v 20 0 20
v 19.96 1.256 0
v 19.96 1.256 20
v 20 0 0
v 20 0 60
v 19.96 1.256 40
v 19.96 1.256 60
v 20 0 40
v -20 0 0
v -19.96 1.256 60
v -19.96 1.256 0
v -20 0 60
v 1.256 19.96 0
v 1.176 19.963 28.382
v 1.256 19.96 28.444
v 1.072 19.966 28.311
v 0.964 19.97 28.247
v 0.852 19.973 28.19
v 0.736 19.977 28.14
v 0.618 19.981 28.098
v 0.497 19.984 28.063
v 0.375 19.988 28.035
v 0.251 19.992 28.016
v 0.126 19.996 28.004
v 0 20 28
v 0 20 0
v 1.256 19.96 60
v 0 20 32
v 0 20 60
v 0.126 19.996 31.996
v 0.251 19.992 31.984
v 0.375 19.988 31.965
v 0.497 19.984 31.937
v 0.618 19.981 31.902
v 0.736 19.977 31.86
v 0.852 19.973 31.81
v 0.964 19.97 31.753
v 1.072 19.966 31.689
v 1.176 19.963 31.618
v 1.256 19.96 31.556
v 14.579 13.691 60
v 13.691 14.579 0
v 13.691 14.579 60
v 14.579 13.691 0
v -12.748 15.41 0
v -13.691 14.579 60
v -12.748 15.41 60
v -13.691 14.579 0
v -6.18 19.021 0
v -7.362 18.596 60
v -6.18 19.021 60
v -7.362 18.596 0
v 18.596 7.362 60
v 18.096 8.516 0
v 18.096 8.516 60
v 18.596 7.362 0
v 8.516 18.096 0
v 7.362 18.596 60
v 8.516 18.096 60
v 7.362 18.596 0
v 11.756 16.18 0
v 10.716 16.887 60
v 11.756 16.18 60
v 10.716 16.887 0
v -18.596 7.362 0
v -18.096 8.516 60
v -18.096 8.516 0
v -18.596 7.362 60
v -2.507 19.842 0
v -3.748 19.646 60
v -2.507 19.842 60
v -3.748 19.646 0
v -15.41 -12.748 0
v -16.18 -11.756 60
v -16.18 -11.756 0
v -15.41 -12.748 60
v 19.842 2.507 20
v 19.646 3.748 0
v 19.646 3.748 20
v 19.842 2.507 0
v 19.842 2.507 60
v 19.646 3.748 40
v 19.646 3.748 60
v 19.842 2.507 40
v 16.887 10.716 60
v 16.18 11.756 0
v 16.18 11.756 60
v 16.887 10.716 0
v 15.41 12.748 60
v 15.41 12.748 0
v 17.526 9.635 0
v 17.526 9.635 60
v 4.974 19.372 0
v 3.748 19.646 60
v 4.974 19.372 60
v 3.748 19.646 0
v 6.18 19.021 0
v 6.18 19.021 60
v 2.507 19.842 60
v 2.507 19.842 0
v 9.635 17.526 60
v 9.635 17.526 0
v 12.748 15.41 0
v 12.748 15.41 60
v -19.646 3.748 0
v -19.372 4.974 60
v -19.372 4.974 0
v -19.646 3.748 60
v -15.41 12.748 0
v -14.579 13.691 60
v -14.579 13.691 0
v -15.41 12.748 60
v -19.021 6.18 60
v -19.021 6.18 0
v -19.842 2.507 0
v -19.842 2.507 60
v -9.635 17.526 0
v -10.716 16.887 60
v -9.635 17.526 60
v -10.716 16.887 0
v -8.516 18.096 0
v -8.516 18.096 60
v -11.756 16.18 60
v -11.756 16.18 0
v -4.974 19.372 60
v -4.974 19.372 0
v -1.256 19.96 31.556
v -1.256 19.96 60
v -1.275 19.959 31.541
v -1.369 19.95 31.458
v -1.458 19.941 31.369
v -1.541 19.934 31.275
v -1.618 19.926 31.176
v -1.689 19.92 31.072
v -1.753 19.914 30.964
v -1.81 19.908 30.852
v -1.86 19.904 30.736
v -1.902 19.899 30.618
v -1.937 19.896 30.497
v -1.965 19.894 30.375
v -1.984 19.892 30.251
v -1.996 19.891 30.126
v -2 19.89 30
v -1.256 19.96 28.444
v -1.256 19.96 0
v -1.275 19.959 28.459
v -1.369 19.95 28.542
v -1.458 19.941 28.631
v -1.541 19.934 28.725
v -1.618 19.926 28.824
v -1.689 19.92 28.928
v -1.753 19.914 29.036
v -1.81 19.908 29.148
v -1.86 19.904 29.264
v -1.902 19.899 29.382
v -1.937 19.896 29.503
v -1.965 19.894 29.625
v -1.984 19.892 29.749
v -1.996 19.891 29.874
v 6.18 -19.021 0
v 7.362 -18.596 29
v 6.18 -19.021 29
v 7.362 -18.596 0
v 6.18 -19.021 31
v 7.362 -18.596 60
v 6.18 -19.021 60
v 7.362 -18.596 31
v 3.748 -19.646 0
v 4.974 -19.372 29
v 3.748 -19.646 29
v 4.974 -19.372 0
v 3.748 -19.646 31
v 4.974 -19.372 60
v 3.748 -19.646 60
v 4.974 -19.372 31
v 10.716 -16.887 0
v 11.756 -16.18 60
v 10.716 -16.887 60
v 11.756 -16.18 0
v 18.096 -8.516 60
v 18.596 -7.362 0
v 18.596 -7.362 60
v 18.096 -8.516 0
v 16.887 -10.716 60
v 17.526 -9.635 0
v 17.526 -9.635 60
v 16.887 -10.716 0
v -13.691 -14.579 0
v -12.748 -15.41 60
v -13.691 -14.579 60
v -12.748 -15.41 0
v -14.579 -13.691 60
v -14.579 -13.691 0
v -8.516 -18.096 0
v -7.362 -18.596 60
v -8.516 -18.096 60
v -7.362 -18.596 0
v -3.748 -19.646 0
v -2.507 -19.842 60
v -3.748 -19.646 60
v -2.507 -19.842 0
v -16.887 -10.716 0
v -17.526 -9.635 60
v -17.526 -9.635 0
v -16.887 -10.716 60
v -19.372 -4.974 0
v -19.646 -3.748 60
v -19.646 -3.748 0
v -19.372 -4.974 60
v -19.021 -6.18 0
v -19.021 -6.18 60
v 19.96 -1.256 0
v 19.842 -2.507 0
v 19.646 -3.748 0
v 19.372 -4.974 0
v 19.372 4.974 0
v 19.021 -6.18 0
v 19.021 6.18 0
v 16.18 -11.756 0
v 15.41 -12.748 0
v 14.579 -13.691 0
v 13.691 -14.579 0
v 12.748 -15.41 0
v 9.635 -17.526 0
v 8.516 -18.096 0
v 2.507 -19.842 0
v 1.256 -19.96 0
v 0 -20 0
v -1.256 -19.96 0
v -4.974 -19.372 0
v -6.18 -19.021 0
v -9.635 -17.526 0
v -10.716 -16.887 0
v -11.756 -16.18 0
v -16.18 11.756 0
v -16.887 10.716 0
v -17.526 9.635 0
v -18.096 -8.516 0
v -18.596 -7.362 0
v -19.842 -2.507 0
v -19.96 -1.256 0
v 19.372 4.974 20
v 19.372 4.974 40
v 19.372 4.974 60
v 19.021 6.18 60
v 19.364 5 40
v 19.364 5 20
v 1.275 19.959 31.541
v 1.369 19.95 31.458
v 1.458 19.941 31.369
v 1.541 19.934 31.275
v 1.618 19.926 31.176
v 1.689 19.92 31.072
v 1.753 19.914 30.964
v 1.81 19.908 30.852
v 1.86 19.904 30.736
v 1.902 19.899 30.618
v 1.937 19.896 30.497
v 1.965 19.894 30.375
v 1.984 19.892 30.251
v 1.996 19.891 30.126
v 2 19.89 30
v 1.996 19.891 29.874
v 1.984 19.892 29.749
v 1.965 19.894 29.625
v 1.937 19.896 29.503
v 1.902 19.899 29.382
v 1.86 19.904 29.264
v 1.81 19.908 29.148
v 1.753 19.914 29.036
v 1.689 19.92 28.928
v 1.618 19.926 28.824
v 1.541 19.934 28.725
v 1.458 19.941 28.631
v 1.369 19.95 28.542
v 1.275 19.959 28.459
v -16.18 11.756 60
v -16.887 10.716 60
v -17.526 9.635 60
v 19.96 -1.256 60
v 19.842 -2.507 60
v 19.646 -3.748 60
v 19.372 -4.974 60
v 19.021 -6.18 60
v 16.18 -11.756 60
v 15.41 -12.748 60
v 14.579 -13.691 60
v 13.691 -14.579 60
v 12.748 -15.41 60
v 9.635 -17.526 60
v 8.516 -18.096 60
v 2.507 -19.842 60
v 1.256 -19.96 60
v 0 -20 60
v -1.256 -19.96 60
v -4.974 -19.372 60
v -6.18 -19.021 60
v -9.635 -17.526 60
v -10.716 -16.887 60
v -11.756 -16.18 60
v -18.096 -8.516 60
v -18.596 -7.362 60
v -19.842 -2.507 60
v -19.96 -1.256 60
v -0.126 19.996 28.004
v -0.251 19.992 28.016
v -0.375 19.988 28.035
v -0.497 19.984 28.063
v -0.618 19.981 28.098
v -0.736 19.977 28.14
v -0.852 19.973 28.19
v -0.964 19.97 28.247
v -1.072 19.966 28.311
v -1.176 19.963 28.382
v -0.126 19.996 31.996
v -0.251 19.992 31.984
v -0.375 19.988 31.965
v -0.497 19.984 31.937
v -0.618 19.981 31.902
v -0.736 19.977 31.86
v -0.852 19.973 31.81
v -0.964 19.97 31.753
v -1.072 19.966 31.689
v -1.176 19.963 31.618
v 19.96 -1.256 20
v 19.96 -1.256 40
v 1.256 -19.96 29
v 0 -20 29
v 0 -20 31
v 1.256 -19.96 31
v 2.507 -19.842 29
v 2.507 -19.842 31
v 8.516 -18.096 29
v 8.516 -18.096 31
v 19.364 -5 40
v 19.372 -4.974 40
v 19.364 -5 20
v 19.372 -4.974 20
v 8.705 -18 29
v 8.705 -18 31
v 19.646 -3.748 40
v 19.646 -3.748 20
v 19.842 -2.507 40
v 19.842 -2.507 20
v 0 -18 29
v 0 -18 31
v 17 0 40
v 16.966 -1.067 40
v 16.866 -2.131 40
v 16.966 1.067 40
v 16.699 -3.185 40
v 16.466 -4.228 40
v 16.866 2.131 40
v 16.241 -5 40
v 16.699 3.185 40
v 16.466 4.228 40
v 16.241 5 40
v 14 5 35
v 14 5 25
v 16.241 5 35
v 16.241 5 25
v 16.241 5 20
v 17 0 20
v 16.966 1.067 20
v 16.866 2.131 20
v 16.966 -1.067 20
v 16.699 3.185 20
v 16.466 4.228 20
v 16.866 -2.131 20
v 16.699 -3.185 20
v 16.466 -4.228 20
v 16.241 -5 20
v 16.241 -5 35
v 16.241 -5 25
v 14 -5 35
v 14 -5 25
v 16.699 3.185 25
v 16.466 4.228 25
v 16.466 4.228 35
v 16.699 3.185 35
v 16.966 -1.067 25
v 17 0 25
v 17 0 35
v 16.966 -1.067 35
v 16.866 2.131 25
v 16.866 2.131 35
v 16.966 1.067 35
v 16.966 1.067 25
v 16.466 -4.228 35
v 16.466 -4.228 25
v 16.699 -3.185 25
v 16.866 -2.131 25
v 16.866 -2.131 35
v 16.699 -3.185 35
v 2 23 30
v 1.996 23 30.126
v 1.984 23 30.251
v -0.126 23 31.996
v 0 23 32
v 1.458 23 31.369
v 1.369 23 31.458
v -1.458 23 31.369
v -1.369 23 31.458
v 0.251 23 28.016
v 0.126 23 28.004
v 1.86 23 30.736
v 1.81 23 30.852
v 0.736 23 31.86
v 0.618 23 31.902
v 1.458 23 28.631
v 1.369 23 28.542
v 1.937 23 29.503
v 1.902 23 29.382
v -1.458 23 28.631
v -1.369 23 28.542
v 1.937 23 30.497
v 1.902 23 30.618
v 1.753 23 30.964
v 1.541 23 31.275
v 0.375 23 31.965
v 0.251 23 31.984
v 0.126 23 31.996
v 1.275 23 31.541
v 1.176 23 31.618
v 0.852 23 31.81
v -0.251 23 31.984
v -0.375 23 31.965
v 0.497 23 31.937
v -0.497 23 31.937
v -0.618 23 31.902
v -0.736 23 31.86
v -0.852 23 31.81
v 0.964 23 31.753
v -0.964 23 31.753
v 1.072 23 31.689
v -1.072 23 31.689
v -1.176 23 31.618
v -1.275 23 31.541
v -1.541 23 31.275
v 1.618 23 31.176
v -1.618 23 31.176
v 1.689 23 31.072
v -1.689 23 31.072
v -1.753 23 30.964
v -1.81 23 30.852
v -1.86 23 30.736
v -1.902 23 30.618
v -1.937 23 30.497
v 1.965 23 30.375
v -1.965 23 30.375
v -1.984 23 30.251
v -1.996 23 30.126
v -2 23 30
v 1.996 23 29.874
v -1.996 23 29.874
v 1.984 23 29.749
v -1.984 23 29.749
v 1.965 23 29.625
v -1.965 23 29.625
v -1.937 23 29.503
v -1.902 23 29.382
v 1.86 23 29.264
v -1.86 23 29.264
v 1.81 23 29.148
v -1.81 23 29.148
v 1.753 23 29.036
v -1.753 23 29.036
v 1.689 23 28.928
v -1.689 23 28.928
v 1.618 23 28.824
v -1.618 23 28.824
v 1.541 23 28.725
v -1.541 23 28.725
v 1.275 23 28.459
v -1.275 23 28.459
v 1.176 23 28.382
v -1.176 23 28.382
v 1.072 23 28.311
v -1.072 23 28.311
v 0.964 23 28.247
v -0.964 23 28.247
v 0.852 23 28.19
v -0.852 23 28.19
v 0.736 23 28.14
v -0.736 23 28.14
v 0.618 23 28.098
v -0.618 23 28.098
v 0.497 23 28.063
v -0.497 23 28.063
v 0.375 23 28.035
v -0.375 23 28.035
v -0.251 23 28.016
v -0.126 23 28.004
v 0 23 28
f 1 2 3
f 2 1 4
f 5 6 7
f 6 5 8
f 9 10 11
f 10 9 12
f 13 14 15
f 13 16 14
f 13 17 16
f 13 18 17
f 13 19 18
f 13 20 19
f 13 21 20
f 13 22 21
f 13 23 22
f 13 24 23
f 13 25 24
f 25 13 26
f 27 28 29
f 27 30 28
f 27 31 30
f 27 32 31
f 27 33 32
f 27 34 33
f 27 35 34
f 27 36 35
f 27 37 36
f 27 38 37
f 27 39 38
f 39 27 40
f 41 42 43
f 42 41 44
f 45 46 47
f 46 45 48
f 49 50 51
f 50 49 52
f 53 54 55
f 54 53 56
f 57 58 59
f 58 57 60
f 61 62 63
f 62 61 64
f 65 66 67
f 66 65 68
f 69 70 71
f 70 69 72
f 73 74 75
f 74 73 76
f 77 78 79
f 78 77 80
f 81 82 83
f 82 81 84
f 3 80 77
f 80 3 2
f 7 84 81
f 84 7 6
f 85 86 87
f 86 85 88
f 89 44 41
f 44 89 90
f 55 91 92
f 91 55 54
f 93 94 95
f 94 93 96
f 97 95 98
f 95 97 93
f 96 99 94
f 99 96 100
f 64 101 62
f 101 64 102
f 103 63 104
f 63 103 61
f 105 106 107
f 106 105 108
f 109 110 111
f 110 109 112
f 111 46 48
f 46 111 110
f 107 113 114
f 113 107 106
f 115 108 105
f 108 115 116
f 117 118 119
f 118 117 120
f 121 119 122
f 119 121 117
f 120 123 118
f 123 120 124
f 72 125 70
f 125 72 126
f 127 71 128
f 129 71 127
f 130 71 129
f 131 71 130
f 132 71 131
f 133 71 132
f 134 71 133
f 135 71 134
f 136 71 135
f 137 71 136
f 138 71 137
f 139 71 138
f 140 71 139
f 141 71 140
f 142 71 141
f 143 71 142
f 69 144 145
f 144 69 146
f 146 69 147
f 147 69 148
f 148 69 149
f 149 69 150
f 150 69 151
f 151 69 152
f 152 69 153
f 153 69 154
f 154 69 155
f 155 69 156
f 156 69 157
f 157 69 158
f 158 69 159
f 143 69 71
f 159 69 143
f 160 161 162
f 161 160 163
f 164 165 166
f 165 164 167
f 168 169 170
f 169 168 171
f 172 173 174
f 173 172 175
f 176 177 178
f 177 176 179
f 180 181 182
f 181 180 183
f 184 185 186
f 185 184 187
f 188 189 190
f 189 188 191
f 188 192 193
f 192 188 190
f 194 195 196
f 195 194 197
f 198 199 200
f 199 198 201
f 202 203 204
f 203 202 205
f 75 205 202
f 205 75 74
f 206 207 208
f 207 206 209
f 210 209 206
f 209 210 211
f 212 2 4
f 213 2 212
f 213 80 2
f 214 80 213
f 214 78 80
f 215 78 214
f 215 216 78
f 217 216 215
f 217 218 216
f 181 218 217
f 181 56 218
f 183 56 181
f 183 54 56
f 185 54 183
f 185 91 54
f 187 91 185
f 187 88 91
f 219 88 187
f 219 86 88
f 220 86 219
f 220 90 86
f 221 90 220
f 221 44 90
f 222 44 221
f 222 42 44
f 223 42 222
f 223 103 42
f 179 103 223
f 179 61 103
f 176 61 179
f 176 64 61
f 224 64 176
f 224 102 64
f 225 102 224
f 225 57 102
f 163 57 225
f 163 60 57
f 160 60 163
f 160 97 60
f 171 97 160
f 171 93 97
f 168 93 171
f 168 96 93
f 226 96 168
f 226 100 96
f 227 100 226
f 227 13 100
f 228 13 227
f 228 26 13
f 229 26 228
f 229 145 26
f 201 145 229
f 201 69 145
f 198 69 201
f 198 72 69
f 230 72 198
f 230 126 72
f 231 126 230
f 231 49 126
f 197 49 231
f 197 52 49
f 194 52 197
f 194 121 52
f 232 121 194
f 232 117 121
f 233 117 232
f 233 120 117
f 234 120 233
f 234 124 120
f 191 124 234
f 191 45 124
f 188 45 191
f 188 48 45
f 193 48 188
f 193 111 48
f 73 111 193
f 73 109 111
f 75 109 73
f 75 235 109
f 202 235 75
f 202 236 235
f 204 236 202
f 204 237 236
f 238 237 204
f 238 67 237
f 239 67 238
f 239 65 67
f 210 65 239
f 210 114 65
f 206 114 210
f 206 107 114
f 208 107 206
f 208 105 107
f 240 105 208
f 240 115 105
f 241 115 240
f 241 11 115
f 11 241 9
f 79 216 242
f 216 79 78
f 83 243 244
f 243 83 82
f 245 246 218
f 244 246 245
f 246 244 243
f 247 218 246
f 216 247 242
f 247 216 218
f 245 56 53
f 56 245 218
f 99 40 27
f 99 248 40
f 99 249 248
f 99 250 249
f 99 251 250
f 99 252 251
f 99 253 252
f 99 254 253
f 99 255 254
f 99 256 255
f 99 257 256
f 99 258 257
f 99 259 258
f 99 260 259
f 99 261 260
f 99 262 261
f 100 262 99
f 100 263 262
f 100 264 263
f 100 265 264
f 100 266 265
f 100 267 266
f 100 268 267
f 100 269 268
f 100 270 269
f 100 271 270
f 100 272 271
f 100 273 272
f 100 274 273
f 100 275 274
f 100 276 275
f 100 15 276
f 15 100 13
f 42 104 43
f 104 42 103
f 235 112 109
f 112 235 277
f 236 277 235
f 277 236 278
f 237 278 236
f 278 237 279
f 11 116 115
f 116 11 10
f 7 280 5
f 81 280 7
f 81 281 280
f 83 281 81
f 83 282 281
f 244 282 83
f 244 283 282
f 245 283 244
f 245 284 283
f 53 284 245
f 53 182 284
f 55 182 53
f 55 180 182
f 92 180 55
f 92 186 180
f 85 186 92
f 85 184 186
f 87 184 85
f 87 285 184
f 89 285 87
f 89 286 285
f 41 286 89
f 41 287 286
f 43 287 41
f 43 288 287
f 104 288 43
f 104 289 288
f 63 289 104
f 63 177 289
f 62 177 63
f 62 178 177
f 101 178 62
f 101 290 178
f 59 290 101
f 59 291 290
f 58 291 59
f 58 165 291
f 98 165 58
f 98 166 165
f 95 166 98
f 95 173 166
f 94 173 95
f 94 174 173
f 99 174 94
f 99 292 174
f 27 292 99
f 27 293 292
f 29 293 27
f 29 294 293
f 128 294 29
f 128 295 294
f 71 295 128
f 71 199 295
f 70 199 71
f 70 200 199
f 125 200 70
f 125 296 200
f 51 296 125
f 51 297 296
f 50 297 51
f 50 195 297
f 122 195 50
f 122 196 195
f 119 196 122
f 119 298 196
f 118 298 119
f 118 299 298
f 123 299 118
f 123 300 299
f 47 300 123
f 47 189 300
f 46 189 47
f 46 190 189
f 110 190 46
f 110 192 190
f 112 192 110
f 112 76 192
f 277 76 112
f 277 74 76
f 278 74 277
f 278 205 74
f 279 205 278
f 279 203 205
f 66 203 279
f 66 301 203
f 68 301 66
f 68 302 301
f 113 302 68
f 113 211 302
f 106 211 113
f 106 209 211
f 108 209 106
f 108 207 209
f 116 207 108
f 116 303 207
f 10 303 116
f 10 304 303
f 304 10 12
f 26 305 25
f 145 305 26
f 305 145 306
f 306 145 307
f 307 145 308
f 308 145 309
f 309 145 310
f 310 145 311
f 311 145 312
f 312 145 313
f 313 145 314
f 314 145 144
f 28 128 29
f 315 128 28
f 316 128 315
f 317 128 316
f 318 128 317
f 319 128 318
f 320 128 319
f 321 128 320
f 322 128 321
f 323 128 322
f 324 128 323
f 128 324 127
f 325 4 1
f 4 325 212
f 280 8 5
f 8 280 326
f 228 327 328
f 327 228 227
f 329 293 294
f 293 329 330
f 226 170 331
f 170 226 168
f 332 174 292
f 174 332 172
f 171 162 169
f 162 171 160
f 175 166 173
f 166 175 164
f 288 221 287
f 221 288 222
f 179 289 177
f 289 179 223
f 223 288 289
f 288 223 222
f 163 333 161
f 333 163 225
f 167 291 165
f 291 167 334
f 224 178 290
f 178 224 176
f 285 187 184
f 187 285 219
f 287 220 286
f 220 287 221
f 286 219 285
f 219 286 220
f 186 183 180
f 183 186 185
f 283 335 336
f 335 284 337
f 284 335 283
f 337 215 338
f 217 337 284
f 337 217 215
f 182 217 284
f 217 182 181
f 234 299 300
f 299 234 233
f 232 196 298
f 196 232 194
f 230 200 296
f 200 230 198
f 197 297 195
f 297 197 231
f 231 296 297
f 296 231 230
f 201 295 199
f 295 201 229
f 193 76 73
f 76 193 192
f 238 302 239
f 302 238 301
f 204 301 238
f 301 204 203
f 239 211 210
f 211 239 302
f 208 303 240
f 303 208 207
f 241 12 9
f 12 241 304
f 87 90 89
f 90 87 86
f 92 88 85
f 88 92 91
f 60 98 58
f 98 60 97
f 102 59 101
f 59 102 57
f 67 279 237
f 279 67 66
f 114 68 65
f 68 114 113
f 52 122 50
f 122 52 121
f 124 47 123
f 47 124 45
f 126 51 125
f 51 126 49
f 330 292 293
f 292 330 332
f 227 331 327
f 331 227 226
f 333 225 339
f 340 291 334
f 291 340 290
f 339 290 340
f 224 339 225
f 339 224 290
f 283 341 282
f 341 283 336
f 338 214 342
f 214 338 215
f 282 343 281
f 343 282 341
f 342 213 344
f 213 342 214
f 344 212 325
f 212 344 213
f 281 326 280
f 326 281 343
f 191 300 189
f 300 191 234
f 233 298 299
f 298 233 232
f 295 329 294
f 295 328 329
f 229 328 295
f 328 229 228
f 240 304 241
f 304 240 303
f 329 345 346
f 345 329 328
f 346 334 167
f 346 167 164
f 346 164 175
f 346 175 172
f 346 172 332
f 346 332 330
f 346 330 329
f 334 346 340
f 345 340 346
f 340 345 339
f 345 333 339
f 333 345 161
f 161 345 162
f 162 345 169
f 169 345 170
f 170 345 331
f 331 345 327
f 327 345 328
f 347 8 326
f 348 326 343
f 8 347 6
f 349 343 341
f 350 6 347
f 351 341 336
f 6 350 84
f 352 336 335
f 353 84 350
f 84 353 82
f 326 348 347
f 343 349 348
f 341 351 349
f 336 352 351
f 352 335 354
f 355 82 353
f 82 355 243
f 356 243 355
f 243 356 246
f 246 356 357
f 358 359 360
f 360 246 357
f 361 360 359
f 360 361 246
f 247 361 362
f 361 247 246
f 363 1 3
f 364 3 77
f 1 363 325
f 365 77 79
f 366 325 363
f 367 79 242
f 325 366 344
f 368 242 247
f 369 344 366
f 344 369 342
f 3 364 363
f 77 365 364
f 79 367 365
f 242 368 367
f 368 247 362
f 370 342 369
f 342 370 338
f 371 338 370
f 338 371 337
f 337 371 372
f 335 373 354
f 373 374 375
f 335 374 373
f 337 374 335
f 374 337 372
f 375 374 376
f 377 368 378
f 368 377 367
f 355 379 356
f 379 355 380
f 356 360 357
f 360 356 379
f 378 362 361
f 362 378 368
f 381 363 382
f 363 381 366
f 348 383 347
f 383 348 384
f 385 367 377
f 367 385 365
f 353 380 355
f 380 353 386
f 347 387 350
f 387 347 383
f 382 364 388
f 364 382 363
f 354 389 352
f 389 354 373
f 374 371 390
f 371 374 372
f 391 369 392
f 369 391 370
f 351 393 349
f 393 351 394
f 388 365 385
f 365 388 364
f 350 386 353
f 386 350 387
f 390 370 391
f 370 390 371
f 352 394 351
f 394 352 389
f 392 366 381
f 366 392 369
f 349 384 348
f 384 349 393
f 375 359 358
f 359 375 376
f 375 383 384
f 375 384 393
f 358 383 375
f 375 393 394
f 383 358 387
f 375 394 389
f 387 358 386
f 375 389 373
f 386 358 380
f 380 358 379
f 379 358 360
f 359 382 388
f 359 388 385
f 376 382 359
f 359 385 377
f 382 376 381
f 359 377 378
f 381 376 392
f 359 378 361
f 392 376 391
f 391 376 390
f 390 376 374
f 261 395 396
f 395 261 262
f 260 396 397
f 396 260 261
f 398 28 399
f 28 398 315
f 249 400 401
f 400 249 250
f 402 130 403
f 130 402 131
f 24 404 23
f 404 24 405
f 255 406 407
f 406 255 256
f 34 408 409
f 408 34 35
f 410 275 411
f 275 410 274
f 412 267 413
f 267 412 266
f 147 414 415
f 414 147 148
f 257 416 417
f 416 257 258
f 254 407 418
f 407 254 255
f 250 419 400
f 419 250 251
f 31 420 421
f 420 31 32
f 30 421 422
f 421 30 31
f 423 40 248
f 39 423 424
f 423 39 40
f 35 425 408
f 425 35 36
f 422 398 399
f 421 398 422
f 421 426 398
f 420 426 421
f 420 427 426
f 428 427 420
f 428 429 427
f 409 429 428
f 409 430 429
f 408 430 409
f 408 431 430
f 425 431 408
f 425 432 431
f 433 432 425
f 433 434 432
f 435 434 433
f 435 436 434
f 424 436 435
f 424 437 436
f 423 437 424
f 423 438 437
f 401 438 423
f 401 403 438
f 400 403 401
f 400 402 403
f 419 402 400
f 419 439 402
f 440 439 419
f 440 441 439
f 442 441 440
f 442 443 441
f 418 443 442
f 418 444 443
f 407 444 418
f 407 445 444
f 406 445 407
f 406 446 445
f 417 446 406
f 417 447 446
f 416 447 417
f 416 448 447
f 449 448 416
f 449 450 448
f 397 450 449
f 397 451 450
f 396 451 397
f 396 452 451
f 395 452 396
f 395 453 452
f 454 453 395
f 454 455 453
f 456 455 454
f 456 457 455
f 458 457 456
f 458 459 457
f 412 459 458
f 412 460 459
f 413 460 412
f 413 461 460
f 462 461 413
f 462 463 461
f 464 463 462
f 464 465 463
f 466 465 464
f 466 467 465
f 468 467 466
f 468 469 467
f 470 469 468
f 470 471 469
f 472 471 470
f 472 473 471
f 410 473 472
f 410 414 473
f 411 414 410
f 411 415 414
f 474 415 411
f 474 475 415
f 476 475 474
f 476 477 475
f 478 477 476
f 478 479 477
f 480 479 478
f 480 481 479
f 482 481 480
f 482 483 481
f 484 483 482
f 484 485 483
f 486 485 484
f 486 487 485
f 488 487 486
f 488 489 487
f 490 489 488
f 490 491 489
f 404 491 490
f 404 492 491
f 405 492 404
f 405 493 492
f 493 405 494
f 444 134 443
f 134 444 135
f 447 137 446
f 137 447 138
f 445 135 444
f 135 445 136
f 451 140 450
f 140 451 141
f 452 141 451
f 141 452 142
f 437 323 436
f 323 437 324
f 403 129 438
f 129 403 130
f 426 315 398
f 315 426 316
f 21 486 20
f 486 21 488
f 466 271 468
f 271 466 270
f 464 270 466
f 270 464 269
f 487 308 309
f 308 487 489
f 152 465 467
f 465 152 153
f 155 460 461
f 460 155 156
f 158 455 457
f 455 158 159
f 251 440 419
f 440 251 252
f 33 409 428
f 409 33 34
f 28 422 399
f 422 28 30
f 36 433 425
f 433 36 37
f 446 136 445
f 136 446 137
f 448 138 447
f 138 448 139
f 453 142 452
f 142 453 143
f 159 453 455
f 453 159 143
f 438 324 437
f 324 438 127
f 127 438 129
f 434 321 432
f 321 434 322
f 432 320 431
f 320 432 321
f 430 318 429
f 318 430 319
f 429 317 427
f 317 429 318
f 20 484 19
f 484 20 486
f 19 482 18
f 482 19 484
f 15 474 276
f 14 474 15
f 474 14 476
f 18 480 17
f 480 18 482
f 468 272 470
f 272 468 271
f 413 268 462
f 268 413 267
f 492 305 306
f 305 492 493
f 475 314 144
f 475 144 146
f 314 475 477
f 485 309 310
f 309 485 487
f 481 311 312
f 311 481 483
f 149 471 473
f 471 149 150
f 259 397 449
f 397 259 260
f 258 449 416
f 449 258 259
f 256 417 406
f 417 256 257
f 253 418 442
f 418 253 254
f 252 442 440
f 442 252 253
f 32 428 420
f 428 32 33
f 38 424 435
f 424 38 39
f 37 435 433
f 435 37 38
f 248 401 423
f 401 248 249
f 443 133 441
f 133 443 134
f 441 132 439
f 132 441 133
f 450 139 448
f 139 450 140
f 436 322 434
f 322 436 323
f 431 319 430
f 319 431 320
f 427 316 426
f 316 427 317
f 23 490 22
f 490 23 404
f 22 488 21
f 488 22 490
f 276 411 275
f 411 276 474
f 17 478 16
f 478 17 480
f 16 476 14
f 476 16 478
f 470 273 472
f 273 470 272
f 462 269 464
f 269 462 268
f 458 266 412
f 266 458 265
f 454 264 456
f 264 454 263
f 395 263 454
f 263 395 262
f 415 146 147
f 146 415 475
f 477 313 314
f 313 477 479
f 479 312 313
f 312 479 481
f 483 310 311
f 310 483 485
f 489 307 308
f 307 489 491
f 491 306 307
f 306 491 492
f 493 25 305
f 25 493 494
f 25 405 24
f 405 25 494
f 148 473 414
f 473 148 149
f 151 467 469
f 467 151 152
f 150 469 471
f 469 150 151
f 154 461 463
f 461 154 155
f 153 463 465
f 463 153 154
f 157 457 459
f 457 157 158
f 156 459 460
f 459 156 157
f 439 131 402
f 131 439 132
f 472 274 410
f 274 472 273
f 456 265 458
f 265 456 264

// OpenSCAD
$fn = 100; // Smoothness

// Parameters
outer_diameter = 40;
outer_length = 60;
wall_thickness = 3;
slit_width = 2;
cutout_width = 10;
cutout_height = 20;
cutout_depth = 10;
bore_diameter = 10;
pin_diameter = 4;
pin_length = 10;

// Outer cylindrical shell
module outer_shell() {
    difference() {
        cylinder(d=outer_diameter, h=outer_length);

        // Horizontal slit
        translate([0, -outer_diameter/2, outer_length/2 - slit_width/2])
            cube([outer_diameter, slit_width, slit_width], center=false);

        // Vertical cutout
        translate([outer_diameter/2 - cutout_depth, -cutout_width/2, outer_length/2 - cutout_height/2])
            cube([cutout_depth, cutout_width, cutout_height], center=false);
    }
}

// Inner rotary joint
module inner_joint() {
    difference() {
        // Main body
        cylinder(d=outer_diameter - 2*wall_thickness, h=outer_length - 10);

        // Central bore
        translate([0, 0, -1])
            cylinder(d=bore_diameter, h=outer_length + 2);

        // Tab for vertical cutout
        translate([outer_diameter/2 - wall_thickness*2, -cutout_width/2, (outer_length - 10)/2 - cutout_height/4])
            cube([cutout_depth, cutout_width, cutout_height/2], center=false);
    }
}

// Locking pin
module locking_pin() {
    translate([0, outer_diameter/2 - pin_diameter/2, outer_length/2])
        rotate([90, 0, 0])
            cylinder(d=pin_diameter, h=pin_length, center=true);
}

// Assembly
module flexible_coupling() {
    outer_shell();
    translate([0, 0, 5])
        inner_joint();
    locking_pin();
}

flexible_coupling();
